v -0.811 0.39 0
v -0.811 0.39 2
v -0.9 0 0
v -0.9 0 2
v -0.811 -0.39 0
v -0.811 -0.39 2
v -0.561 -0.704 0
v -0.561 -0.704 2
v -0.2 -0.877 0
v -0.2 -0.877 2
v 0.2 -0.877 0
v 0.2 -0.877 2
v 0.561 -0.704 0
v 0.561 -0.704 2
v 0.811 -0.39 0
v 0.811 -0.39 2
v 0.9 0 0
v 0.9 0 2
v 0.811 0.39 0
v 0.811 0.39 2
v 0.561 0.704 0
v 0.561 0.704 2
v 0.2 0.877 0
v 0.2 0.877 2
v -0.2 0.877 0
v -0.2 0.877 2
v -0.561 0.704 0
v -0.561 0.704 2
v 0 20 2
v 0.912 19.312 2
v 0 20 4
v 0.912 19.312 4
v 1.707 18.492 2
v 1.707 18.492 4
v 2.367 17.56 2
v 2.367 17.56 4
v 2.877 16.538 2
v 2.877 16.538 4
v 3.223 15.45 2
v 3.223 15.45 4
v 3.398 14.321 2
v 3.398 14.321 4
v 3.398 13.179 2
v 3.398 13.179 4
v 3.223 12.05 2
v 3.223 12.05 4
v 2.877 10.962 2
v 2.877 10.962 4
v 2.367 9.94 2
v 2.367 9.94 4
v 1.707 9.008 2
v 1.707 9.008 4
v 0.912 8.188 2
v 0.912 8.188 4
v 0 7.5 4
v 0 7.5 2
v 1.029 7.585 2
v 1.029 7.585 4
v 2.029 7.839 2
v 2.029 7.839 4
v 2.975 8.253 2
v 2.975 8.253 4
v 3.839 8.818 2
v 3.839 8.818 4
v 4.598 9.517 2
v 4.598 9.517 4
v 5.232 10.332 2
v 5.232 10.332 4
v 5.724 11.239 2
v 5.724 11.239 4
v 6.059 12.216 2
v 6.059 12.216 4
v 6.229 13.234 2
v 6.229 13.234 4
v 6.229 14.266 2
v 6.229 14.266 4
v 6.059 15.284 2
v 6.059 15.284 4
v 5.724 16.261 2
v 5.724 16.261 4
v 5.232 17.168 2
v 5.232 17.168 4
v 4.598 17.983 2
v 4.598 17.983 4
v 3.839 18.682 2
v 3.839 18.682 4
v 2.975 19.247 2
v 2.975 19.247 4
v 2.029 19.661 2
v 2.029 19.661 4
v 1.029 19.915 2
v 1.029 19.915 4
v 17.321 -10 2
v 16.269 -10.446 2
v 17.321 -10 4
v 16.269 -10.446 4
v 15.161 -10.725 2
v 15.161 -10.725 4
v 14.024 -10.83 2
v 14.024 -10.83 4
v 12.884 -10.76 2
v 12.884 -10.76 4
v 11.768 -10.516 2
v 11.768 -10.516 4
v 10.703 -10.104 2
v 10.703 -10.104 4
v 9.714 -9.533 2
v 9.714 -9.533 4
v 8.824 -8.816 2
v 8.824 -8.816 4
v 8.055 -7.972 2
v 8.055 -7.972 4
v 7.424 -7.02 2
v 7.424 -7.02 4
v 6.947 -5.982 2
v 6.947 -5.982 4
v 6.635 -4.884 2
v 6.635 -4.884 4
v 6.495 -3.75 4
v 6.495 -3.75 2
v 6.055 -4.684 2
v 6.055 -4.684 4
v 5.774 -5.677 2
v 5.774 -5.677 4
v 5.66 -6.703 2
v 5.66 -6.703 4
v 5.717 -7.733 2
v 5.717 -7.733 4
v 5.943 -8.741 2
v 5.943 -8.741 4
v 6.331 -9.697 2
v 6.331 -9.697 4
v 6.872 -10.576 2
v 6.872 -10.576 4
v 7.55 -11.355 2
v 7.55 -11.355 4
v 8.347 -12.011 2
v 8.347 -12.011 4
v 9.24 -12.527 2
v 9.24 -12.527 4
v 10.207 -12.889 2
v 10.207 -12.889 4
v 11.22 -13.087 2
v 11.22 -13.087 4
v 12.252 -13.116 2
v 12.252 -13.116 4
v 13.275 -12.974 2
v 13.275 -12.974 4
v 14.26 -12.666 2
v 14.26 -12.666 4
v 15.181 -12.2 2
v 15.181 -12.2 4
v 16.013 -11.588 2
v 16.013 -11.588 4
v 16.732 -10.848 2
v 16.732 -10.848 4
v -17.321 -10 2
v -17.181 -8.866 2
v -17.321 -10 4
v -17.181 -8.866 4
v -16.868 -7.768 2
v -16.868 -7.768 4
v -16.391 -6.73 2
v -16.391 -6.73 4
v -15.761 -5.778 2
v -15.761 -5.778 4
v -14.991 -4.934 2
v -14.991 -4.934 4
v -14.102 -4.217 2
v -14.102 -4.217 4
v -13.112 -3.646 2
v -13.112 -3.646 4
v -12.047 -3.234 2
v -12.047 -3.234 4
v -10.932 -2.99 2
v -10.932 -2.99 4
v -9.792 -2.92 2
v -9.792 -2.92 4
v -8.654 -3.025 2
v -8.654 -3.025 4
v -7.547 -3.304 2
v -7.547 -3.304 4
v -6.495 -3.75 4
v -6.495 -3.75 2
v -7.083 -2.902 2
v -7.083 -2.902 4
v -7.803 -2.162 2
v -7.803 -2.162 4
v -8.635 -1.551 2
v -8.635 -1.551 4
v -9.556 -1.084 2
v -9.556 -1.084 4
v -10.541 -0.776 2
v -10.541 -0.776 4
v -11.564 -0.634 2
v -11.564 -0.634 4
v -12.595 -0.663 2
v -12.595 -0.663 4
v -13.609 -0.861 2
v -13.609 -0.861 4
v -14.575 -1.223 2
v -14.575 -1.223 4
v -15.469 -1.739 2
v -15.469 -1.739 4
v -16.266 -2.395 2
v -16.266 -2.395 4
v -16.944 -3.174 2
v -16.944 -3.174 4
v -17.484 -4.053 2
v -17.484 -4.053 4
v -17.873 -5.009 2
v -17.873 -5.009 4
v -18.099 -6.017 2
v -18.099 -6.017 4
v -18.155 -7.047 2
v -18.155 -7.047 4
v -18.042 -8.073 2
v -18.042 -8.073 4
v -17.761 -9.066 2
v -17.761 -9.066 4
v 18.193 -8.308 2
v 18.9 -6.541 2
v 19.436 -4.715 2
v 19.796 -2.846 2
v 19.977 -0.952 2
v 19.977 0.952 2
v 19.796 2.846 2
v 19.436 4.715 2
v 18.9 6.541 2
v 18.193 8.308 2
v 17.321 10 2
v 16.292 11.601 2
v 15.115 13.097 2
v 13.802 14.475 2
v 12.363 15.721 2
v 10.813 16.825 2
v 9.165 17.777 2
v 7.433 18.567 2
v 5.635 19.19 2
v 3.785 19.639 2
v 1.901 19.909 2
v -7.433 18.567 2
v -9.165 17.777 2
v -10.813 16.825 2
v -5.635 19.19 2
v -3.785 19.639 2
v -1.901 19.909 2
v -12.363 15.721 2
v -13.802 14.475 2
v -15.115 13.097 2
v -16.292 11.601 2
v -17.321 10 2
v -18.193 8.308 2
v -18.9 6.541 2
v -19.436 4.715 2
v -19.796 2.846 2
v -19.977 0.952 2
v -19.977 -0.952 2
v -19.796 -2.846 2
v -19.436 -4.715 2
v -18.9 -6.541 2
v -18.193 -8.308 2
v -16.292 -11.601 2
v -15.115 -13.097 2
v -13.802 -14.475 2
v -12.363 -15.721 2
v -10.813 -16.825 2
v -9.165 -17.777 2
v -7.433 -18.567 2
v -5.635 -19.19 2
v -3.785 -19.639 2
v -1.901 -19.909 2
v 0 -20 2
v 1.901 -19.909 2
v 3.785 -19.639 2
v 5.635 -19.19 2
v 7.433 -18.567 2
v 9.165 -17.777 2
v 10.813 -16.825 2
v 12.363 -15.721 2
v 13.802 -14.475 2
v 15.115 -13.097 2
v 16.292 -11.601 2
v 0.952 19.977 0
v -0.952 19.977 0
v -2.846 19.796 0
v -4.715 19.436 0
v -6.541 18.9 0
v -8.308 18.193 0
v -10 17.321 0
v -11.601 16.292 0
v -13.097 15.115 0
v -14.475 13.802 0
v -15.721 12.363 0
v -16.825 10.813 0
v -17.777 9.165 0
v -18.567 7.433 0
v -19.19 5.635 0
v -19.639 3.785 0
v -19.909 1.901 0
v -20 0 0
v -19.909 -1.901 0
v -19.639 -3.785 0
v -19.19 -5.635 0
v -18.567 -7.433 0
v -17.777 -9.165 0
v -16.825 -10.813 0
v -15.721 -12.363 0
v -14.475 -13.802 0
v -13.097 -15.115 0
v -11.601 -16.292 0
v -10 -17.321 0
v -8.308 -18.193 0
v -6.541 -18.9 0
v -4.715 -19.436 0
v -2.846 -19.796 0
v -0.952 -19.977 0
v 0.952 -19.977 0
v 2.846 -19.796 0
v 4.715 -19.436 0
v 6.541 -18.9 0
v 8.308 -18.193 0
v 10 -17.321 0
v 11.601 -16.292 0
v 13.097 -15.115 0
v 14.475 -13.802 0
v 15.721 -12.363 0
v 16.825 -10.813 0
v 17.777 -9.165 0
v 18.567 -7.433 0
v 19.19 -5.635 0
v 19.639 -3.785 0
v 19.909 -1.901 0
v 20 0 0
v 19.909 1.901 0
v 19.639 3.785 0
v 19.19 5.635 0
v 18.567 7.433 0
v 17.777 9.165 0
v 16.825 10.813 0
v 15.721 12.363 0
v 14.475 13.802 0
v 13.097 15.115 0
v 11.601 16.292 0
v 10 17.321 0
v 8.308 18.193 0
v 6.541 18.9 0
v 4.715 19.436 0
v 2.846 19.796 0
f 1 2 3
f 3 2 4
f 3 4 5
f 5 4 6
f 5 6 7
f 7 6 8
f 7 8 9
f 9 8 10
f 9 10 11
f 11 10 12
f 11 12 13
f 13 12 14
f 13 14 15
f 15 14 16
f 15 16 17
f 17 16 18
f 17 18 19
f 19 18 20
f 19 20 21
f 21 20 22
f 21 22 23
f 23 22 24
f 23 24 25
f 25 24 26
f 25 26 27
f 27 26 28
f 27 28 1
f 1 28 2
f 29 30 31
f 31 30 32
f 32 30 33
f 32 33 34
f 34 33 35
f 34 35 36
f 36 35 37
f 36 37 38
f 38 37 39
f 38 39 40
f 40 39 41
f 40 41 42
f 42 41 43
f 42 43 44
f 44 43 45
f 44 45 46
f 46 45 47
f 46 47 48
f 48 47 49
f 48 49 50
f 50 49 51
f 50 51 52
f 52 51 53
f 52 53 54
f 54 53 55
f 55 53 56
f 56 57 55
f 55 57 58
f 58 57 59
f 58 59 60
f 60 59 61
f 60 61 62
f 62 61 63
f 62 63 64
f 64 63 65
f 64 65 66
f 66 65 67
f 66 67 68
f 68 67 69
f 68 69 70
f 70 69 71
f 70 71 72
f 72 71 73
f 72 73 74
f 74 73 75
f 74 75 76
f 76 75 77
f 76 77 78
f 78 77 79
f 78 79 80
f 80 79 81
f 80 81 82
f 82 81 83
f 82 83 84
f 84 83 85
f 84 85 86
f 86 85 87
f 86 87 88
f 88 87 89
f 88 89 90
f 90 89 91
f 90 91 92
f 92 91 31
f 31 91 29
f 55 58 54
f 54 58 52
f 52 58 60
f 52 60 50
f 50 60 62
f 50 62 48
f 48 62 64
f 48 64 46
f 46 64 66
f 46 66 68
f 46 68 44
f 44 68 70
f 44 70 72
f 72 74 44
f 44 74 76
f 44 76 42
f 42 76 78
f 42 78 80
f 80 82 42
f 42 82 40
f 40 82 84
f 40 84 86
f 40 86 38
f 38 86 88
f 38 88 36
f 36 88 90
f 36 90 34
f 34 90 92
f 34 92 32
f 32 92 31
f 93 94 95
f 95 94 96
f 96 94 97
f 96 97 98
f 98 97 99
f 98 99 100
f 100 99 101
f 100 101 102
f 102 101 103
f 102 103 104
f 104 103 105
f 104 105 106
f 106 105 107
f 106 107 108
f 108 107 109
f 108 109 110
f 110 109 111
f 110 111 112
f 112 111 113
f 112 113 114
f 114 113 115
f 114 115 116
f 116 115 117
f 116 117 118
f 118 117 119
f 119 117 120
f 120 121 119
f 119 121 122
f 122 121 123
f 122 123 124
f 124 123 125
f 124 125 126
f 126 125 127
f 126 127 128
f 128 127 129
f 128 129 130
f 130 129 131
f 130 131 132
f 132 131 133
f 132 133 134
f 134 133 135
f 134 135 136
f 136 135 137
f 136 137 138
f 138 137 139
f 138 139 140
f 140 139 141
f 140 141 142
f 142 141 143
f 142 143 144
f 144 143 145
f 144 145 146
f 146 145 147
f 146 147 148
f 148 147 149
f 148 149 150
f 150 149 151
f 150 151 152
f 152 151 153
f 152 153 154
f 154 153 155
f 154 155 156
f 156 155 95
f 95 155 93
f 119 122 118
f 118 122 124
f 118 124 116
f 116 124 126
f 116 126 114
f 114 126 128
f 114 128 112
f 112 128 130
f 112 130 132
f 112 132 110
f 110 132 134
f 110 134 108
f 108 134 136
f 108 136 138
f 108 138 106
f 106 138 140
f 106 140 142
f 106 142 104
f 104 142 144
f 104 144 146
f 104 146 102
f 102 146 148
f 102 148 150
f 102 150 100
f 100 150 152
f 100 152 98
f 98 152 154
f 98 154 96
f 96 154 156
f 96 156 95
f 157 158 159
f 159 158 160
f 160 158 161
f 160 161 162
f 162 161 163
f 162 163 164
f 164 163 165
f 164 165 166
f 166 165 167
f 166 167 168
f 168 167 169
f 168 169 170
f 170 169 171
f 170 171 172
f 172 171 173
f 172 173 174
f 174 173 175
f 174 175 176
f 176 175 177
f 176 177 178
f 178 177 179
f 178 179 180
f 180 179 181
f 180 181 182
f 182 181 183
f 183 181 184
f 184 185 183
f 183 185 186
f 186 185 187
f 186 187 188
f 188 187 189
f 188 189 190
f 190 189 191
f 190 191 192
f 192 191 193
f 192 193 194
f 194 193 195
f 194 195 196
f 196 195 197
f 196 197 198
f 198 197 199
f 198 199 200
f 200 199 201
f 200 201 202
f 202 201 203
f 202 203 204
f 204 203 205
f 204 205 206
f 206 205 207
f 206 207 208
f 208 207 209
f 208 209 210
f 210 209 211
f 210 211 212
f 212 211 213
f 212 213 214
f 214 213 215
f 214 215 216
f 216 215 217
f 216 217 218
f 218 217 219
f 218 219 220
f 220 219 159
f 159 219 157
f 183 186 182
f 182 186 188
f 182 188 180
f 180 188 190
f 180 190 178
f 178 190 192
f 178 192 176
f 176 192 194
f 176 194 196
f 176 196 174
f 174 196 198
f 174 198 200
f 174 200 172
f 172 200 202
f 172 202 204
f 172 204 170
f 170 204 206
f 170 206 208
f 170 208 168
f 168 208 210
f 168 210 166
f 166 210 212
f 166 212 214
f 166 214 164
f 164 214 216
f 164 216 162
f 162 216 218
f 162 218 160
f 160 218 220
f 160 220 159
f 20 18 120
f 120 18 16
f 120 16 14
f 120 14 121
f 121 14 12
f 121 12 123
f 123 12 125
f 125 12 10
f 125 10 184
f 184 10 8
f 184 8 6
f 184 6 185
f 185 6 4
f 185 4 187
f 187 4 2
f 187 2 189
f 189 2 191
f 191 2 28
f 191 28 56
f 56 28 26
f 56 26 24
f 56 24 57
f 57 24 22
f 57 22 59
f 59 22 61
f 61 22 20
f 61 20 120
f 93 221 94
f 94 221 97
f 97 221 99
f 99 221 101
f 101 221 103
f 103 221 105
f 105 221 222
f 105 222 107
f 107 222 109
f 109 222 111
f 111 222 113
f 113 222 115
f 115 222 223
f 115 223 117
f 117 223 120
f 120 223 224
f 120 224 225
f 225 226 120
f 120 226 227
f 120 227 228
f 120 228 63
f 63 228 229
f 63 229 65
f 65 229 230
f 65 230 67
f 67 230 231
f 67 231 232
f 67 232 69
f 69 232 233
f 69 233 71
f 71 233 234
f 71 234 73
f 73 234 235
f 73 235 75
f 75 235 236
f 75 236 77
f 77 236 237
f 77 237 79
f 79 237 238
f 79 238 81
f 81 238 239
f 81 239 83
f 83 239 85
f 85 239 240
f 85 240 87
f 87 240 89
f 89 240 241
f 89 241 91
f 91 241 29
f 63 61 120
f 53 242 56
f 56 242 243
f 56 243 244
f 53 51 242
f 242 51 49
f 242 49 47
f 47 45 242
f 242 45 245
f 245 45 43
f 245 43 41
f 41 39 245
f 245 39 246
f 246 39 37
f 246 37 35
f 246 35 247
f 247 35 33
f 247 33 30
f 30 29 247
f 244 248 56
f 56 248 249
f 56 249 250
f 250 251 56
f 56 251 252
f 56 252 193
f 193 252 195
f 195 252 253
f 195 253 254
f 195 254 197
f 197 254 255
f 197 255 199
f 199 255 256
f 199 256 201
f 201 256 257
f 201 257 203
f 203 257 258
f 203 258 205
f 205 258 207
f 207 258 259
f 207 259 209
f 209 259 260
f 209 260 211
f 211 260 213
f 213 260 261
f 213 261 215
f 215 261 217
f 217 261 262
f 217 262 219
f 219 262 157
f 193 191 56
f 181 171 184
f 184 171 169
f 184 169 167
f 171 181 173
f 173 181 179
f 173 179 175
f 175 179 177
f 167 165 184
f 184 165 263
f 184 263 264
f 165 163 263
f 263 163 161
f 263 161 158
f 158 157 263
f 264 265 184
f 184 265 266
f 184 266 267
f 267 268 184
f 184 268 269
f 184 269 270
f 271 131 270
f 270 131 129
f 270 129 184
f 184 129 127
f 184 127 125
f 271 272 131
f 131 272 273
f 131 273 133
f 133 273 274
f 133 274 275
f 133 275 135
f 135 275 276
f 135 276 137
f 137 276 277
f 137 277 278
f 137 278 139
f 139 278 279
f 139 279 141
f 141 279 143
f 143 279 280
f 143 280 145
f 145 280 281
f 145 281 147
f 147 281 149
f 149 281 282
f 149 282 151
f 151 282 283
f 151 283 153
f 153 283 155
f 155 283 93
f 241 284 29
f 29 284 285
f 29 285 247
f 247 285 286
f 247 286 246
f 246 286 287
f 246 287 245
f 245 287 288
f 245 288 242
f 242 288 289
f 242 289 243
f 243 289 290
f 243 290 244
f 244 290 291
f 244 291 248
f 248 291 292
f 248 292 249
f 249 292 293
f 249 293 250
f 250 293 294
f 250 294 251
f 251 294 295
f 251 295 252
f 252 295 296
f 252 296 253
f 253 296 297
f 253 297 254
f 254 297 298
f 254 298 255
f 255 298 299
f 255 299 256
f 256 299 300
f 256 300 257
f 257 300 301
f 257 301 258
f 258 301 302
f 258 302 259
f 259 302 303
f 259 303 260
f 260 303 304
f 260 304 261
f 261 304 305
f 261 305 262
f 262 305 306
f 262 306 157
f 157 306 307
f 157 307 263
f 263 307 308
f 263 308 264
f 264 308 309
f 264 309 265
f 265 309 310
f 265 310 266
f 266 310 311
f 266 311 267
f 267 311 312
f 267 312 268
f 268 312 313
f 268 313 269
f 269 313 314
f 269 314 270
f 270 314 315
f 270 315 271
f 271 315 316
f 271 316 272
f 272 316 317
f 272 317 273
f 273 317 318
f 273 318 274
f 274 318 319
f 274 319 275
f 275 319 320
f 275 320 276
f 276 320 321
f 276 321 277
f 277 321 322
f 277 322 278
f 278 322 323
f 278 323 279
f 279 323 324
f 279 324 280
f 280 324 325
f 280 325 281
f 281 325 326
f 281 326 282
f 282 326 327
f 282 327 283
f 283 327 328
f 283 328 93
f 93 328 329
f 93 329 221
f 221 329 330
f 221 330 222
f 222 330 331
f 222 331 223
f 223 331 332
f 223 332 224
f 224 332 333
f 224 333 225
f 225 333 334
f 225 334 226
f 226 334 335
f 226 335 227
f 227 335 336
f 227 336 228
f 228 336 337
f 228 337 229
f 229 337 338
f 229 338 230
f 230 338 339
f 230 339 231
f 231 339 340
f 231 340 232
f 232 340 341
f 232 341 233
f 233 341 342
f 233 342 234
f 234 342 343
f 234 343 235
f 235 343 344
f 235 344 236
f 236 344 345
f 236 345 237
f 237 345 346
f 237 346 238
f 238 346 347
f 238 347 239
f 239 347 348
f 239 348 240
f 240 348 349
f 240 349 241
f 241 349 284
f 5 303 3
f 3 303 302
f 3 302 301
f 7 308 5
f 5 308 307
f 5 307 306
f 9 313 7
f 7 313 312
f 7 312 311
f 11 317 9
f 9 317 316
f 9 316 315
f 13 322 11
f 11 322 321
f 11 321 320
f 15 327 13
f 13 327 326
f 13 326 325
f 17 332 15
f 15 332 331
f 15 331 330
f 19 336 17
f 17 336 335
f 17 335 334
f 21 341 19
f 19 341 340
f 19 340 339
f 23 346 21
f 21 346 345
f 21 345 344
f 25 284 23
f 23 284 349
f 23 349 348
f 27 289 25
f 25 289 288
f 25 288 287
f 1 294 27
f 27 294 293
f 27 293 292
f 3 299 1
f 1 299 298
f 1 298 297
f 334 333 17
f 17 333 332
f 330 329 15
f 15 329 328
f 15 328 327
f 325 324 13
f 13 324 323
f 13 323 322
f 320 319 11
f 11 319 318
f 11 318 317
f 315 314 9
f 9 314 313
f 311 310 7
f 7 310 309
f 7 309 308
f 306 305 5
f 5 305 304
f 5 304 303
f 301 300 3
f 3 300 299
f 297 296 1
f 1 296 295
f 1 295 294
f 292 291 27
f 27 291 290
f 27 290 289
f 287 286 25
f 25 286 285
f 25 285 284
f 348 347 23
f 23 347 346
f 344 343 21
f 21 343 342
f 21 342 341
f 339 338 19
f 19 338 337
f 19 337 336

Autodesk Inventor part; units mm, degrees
ref_plane "YZ Plane" through (0, 0, 0) normal (1, 0, 0) x (0, 1, 0)
ref_plane "XZ Plane" through (0, 0, 0) normal (0, 1, 0) x (-1, 0, 0)
ref_plane "XY Plane" through (0, 0, 0) normal (0, 0, 1) x (1, 0, 0)
sketch "スケッチ1" plane through (0, 0, 0) normal (0, 0, 1) x (1, 0, 0)
  circle A0 centre (0, 0) radius 20
  dimension "d0" = 40
extrude "押し出し1" add sketch "スケッチ1" along normal blind 2
sketch "スケッチ2" plane through (0, 0, 2) normal (0, 0, 1) x (1, 0, 0)
  circle A0 centre (0, 0) radius 7.5
  circle A1 centre (0, 0) radius 20 projected
  arc A2 (0, 7.5) -> (0, 20) centre (0, 13.75) ccw
  arc A3 (0, 7.5) -> (0, 20) centre (-4, 13.75) ccw
  arc A4 (-6.4952, -3.75) -> (-17.3205, -10) centre (-11.9078, -6.875) ccw
  arc A5 (-6.4952, -3.75) -> (-17.3205, -10) centre (-9.9078, -10.3391) ccw
  arc A6 (6.4952, -3.75) -> (17.3205, -10) centre (11.9078, -6.875) ccw
  arc A7 (6.4952, -3.75) -> (17.3205, -10) centre (13.9078, -3.4109) ccw
  dimension "d3" = 15
  dimension "d4" = 4
  dimension "d20" = 360
extrude "押し出し2" add sketch "スケッチ2" along normal blind 2 contours A3 A2 | A7 A6 | A5 A4
sketch "スケッチ3" plane through (0, 0, 2) normal (0, 0, 1) x (1, 0, 0)
  point P0 (0, 0)
  point P1 (0, 0)
hole "穴1" at (0, 0, 2) direction (0, 0, -1) diameter 1.8 depth 8.8 tip angle 118
properties part number "20220618_ファン40mm羽数3枚"
